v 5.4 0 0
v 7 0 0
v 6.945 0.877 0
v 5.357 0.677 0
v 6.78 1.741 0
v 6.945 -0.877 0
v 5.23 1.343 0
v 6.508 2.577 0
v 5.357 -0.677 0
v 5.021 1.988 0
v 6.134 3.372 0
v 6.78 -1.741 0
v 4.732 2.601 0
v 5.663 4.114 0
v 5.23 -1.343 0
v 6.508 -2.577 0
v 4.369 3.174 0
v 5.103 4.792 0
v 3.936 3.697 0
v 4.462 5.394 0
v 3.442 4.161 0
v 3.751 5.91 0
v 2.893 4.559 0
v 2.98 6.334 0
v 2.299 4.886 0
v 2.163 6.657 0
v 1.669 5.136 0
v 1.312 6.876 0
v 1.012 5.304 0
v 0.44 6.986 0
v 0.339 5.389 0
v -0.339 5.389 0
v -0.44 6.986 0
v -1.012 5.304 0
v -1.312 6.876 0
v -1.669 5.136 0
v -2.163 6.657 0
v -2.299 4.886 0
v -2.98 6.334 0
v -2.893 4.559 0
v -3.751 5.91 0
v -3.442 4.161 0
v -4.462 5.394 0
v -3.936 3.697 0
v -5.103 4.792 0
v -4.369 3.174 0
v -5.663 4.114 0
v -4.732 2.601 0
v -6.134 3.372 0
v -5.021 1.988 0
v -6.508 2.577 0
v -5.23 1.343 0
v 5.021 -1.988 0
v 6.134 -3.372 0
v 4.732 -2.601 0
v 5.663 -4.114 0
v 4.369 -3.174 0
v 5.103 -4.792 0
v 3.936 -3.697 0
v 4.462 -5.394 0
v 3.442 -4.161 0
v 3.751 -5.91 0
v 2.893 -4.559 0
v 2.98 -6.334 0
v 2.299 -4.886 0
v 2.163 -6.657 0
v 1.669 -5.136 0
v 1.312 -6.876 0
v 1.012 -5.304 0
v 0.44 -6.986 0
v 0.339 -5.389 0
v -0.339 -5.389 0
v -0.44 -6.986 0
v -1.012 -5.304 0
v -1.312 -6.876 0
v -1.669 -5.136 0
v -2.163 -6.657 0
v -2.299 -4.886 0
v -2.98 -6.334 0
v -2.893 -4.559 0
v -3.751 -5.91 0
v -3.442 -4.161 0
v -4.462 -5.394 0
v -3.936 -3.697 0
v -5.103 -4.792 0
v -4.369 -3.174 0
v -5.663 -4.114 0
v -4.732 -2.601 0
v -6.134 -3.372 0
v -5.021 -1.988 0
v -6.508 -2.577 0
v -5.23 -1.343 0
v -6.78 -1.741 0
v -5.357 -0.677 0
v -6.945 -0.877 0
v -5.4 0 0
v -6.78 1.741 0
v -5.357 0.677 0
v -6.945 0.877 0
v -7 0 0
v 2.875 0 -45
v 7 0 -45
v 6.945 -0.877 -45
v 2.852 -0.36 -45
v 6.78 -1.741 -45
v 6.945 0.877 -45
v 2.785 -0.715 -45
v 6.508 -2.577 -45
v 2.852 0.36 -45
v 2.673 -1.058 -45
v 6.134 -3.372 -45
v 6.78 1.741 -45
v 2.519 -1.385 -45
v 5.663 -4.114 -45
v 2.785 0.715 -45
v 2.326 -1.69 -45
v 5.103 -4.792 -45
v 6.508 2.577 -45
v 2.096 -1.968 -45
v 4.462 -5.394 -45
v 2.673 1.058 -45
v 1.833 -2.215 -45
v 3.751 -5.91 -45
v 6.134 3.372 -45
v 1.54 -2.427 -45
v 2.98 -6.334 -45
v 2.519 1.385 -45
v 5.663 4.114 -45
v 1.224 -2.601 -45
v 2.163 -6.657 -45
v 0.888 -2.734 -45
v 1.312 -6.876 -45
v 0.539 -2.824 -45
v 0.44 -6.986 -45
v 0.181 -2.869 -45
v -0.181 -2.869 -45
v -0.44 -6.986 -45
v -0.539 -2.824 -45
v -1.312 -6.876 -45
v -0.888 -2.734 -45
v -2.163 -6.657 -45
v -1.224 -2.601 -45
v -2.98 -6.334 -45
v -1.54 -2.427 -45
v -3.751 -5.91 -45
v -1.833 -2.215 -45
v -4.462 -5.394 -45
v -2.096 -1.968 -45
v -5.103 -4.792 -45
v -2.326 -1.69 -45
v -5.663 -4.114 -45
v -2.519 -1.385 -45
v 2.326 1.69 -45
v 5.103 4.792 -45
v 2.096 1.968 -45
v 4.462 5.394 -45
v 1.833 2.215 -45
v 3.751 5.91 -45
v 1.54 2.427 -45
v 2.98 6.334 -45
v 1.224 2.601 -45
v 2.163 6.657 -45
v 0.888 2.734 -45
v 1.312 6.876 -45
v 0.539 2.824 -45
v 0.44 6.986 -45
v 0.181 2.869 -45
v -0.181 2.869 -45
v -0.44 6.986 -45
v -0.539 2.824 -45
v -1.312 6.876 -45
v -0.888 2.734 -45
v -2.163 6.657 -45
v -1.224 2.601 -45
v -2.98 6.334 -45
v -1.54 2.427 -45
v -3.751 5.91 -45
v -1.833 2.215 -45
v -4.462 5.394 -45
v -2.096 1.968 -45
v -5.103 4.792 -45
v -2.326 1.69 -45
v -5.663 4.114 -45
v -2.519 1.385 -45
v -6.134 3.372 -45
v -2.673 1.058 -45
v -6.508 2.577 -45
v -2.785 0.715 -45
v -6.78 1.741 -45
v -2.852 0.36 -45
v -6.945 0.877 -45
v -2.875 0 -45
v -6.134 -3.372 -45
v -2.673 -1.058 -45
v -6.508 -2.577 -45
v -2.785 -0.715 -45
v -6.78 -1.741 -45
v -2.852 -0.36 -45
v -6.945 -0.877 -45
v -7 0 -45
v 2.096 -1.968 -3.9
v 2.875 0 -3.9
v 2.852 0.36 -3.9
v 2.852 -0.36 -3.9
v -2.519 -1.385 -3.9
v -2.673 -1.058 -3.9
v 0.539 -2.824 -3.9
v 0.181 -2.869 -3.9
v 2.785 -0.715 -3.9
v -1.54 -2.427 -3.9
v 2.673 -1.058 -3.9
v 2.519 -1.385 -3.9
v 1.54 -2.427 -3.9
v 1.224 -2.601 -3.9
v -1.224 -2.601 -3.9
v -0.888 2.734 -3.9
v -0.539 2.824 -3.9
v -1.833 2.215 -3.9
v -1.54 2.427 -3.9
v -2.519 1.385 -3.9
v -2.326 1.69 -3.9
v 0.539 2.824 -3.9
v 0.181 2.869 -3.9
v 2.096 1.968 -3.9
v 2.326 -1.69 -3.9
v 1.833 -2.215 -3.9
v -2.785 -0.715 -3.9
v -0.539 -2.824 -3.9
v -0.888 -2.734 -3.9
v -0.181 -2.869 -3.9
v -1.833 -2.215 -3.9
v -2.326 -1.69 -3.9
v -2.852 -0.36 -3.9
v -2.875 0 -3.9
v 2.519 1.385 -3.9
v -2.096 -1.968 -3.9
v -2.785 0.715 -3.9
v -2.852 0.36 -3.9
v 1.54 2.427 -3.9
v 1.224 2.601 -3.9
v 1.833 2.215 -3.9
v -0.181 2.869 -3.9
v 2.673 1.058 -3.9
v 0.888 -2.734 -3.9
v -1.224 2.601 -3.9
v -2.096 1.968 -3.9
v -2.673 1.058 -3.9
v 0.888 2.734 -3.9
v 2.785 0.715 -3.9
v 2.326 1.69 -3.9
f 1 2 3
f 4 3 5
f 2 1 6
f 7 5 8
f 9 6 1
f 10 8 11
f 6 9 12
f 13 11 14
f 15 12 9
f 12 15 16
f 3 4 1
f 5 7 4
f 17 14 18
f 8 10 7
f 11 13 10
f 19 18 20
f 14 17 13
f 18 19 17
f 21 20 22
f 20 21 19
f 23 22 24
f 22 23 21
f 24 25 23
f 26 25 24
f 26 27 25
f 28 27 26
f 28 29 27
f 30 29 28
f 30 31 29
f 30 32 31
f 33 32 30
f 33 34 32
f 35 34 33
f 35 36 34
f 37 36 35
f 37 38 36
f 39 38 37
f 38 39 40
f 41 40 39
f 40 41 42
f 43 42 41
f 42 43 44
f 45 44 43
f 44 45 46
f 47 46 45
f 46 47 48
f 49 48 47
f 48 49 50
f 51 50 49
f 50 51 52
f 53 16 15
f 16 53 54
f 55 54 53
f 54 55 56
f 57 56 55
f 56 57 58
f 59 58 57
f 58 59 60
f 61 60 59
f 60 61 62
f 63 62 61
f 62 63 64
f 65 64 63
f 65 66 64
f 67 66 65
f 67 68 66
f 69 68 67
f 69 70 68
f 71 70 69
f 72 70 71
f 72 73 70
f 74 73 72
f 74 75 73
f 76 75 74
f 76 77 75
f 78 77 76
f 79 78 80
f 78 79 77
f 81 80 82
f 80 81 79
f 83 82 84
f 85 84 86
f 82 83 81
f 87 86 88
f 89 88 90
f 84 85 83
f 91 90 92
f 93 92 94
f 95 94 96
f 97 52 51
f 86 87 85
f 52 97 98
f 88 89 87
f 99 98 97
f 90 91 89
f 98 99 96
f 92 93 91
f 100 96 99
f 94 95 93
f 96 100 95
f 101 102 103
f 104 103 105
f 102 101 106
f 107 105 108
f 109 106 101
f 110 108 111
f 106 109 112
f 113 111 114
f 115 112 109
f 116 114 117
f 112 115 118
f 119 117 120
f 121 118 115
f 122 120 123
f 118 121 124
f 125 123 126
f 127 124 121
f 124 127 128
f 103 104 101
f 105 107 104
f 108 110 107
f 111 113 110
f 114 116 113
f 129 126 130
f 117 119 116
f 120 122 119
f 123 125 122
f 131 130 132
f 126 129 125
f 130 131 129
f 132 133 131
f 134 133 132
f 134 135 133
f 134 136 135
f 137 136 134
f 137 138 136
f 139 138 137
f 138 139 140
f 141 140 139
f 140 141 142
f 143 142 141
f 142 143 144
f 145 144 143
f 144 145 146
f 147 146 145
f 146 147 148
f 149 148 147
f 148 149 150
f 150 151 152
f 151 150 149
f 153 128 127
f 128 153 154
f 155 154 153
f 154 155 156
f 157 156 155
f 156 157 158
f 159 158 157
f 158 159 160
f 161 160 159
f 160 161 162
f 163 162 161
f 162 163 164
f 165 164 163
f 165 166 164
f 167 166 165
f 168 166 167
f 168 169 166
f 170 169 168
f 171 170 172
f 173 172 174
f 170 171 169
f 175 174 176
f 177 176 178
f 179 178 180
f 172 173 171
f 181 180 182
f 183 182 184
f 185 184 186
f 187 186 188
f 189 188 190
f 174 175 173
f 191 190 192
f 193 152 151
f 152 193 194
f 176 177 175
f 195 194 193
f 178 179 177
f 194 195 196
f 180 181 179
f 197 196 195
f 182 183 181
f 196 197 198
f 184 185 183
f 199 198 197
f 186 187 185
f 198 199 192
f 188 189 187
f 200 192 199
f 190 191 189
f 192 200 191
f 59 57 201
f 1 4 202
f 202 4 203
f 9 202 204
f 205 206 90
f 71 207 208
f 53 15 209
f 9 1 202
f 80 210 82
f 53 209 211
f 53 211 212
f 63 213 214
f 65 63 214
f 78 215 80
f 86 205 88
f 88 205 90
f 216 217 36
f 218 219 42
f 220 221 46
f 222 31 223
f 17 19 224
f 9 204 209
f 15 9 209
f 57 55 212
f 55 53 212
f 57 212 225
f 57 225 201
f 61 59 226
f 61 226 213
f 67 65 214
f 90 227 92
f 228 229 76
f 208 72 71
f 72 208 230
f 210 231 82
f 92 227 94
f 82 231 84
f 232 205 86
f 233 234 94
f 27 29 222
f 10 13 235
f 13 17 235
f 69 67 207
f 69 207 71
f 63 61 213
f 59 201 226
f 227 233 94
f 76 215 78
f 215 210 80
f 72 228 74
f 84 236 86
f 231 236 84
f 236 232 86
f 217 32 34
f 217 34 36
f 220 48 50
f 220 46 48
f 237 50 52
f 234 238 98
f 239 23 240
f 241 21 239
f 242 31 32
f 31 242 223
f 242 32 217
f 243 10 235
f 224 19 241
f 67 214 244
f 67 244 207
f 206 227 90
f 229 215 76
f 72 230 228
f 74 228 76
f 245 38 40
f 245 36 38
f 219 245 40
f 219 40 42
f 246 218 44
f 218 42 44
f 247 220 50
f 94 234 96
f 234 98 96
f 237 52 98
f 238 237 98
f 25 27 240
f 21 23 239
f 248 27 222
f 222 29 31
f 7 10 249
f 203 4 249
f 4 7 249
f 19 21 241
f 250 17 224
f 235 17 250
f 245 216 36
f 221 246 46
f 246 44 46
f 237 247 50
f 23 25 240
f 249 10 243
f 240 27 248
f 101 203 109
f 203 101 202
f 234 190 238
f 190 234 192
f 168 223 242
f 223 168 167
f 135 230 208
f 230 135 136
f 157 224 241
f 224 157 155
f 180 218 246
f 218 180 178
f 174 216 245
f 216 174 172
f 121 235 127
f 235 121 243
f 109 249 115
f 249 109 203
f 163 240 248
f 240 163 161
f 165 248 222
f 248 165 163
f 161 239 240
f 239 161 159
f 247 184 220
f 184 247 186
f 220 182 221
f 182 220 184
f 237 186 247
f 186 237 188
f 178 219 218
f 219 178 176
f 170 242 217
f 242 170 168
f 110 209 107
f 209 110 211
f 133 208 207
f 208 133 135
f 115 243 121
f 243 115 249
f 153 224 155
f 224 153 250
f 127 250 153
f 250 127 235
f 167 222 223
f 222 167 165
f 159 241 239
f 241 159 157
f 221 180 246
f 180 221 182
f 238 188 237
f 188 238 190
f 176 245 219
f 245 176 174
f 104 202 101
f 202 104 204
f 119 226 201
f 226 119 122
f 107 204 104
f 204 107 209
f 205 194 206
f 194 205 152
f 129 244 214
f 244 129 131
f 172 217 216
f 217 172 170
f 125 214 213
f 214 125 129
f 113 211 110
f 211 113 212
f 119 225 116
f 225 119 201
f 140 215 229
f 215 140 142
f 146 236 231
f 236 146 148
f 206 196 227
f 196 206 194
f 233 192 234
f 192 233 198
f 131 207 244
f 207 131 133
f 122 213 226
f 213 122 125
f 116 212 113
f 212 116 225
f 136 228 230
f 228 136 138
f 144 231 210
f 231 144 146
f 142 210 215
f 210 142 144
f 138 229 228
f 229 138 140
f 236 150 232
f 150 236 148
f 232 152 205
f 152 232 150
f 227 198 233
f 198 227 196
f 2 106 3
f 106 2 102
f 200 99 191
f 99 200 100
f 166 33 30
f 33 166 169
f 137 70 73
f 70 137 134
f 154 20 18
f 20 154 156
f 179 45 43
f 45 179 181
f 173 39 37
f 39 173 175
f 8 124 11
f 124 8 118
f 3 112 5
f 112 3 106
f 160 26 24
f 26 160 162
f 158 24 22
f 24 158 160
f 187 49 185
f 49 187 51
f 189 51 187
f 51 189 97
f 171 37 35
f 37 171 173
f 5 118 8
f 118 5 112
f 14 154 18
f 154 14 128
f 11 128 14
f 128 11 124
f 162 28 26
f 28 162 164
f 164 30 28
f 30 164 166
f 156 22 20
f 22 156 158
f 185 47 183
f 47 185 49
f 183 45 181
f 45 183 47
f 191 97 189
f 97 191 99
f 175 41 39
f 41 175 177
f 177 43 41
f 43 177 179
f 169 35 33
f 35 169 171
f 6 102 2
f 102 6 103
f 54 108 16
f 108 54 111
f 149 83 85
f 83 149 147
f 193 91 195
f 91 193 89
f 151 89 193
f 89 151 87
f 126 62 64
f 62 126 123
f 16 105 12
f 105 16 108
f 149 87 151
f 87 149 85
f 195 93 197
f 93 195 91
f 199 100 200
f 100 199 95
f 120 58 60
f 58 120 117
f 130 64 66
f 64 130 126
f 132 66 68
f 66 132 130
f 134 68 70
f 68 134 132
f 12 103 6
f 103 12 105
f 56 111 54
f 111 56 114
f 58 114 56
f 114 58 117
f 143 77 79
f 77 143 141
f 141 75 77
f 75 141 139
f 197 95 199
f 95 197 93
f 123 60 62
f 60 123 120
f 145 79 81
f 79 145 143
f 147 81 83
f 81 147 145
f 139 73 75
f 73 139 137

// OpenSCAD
$fn = 50;


difference() {
	union() {
		translate(v = [0, 0, -45.0000000000]) {
			cylinder(h = 45, r = 7.0000000000);
		}
		cylinder(h = 0, r = 13.0000000000);
	}
	union() {
		translate(v = [0, 0, 0]) {
			rotate(a = [0, 0, 0]) {
				difference() {
					union() {
						#translate(v = [0, 0, -45.0000000000]) {
							cylinder(h = 45, r = 2.6000000000);
						}
						#translate(v = [0, 0, -3.9000000000]) {
							cylinder(h = 3.9000000000, r1 = 2.8750000000, r2 = 5.4000000000);
						}
						#translate(v = [0, 0, -45.0000000000]) {
							cylinder(h = 45, r = 2.8750000000);
						}
						#translate(v = [0, 0, -45.0000000000]) {
							cylinder(h = 45, r = 2.6000000000);
						}
					}
					union();
				}
			}
		}
	}
}
